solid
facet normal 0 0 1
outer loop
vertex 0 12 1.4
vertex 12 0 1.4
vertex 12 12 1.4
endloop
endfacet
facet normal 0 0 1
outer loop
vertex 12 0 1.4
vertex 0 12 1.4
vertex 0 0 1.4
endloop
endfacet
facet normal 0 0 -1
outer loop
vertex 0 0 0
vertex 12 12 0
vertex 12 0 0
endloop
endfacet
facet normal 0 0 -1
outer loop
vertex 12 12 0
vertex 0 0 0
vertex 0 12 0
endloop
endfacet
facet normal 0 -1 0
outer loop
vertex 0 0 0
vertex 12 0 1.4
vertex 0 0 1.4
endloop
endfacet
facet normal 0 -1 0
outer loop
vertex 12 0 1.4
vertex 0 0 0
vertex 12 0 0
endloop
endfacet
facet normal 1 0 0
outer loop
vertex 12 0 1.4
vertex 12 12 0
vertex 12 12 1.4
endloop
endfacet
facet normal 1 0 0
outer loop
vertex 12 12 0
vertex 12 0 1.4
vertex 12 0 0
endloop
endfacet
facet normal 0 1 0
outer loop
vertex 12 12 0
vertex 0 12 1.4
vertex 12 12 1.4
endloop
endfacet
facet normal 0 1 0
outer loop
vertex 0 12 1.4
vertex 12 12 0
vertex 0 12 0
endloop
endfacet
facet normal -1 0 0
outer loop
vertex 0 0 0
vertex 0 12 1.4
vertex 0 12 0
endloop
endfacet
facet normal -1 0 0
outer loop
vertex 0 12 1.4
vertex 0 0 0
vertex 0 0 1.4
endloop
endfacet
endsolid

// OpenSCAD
/* Warning, this is a very basic generator with a lot of approximation 
input data : [LFBGA, AFB, 12x12x1.4mm, 160, , A, C04-21119A]
generated by com.zoubworld.electronics.cad.model3d.Basic
Date : Sun Feb 15 10:50:49 CET 2026
*/

//body
color("black")
translate([0,0,0])
cube([12.0,12.0,1.4], center=false);
